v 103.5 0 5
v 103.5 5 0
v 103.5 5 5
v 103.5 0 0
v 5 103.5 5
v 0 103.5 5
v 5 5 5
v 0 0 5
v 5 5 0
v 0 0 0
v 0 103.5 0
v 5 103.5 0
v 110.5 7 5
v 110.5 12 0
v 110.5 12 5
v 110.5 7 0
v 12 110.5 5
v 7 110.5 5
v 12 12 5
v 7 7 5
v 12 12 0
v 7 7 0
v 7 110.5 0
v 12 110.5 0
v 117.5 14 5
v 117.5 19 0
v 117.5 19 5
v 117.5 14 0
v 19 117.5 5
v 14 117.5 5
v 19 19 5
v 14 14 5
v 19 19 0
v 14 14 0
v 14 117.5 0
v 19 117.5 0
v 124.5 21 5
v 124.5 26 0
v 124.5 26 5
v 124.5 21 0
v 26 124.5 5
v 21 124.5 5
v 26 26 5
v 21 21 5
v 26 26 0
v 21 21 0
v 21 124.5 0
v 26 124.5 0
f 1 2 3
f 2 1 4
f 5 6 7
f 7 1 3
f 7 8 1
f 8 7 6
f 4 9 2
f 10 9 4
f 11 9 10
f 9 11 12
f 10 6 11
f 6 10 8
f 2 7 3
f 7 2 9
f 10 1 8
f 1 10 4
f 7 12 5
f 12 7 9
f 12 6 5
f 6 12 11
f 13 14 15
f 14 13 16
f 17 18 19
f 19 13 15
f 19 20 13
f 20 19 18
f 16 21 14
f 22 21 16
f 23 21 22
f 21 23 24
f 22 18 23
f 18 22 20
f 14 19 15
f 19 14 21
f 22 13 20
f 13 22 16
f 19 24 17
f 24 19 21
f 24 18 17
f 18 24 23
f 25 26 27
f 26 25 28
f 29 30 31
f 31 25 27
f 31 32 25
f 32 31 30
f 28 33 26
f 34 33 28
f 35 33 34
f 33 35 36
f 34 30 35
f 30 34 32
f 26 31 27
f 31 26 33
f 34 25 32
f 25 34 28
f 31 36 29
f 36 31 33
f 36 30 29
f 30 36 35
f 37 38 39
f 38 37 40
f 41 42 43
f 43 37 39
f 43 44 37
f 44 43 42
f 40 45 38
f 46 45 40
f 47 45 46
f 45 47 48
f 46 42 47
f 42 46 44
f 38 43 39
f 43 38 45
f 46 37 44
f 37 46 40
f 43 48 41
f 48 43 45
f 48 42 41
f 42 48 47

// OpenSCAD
module part() {
    cube([207 / 2, 5, 5]);
    cube([5, 207 / 2, 5]);
}

d = 7;

translate([d*0, d*0, 0]) part();
translate([d*1, d*1, 0]) part();
translate([d*2, d*2, 0]) part();
translate([d*3, d*3, 0]) part();
